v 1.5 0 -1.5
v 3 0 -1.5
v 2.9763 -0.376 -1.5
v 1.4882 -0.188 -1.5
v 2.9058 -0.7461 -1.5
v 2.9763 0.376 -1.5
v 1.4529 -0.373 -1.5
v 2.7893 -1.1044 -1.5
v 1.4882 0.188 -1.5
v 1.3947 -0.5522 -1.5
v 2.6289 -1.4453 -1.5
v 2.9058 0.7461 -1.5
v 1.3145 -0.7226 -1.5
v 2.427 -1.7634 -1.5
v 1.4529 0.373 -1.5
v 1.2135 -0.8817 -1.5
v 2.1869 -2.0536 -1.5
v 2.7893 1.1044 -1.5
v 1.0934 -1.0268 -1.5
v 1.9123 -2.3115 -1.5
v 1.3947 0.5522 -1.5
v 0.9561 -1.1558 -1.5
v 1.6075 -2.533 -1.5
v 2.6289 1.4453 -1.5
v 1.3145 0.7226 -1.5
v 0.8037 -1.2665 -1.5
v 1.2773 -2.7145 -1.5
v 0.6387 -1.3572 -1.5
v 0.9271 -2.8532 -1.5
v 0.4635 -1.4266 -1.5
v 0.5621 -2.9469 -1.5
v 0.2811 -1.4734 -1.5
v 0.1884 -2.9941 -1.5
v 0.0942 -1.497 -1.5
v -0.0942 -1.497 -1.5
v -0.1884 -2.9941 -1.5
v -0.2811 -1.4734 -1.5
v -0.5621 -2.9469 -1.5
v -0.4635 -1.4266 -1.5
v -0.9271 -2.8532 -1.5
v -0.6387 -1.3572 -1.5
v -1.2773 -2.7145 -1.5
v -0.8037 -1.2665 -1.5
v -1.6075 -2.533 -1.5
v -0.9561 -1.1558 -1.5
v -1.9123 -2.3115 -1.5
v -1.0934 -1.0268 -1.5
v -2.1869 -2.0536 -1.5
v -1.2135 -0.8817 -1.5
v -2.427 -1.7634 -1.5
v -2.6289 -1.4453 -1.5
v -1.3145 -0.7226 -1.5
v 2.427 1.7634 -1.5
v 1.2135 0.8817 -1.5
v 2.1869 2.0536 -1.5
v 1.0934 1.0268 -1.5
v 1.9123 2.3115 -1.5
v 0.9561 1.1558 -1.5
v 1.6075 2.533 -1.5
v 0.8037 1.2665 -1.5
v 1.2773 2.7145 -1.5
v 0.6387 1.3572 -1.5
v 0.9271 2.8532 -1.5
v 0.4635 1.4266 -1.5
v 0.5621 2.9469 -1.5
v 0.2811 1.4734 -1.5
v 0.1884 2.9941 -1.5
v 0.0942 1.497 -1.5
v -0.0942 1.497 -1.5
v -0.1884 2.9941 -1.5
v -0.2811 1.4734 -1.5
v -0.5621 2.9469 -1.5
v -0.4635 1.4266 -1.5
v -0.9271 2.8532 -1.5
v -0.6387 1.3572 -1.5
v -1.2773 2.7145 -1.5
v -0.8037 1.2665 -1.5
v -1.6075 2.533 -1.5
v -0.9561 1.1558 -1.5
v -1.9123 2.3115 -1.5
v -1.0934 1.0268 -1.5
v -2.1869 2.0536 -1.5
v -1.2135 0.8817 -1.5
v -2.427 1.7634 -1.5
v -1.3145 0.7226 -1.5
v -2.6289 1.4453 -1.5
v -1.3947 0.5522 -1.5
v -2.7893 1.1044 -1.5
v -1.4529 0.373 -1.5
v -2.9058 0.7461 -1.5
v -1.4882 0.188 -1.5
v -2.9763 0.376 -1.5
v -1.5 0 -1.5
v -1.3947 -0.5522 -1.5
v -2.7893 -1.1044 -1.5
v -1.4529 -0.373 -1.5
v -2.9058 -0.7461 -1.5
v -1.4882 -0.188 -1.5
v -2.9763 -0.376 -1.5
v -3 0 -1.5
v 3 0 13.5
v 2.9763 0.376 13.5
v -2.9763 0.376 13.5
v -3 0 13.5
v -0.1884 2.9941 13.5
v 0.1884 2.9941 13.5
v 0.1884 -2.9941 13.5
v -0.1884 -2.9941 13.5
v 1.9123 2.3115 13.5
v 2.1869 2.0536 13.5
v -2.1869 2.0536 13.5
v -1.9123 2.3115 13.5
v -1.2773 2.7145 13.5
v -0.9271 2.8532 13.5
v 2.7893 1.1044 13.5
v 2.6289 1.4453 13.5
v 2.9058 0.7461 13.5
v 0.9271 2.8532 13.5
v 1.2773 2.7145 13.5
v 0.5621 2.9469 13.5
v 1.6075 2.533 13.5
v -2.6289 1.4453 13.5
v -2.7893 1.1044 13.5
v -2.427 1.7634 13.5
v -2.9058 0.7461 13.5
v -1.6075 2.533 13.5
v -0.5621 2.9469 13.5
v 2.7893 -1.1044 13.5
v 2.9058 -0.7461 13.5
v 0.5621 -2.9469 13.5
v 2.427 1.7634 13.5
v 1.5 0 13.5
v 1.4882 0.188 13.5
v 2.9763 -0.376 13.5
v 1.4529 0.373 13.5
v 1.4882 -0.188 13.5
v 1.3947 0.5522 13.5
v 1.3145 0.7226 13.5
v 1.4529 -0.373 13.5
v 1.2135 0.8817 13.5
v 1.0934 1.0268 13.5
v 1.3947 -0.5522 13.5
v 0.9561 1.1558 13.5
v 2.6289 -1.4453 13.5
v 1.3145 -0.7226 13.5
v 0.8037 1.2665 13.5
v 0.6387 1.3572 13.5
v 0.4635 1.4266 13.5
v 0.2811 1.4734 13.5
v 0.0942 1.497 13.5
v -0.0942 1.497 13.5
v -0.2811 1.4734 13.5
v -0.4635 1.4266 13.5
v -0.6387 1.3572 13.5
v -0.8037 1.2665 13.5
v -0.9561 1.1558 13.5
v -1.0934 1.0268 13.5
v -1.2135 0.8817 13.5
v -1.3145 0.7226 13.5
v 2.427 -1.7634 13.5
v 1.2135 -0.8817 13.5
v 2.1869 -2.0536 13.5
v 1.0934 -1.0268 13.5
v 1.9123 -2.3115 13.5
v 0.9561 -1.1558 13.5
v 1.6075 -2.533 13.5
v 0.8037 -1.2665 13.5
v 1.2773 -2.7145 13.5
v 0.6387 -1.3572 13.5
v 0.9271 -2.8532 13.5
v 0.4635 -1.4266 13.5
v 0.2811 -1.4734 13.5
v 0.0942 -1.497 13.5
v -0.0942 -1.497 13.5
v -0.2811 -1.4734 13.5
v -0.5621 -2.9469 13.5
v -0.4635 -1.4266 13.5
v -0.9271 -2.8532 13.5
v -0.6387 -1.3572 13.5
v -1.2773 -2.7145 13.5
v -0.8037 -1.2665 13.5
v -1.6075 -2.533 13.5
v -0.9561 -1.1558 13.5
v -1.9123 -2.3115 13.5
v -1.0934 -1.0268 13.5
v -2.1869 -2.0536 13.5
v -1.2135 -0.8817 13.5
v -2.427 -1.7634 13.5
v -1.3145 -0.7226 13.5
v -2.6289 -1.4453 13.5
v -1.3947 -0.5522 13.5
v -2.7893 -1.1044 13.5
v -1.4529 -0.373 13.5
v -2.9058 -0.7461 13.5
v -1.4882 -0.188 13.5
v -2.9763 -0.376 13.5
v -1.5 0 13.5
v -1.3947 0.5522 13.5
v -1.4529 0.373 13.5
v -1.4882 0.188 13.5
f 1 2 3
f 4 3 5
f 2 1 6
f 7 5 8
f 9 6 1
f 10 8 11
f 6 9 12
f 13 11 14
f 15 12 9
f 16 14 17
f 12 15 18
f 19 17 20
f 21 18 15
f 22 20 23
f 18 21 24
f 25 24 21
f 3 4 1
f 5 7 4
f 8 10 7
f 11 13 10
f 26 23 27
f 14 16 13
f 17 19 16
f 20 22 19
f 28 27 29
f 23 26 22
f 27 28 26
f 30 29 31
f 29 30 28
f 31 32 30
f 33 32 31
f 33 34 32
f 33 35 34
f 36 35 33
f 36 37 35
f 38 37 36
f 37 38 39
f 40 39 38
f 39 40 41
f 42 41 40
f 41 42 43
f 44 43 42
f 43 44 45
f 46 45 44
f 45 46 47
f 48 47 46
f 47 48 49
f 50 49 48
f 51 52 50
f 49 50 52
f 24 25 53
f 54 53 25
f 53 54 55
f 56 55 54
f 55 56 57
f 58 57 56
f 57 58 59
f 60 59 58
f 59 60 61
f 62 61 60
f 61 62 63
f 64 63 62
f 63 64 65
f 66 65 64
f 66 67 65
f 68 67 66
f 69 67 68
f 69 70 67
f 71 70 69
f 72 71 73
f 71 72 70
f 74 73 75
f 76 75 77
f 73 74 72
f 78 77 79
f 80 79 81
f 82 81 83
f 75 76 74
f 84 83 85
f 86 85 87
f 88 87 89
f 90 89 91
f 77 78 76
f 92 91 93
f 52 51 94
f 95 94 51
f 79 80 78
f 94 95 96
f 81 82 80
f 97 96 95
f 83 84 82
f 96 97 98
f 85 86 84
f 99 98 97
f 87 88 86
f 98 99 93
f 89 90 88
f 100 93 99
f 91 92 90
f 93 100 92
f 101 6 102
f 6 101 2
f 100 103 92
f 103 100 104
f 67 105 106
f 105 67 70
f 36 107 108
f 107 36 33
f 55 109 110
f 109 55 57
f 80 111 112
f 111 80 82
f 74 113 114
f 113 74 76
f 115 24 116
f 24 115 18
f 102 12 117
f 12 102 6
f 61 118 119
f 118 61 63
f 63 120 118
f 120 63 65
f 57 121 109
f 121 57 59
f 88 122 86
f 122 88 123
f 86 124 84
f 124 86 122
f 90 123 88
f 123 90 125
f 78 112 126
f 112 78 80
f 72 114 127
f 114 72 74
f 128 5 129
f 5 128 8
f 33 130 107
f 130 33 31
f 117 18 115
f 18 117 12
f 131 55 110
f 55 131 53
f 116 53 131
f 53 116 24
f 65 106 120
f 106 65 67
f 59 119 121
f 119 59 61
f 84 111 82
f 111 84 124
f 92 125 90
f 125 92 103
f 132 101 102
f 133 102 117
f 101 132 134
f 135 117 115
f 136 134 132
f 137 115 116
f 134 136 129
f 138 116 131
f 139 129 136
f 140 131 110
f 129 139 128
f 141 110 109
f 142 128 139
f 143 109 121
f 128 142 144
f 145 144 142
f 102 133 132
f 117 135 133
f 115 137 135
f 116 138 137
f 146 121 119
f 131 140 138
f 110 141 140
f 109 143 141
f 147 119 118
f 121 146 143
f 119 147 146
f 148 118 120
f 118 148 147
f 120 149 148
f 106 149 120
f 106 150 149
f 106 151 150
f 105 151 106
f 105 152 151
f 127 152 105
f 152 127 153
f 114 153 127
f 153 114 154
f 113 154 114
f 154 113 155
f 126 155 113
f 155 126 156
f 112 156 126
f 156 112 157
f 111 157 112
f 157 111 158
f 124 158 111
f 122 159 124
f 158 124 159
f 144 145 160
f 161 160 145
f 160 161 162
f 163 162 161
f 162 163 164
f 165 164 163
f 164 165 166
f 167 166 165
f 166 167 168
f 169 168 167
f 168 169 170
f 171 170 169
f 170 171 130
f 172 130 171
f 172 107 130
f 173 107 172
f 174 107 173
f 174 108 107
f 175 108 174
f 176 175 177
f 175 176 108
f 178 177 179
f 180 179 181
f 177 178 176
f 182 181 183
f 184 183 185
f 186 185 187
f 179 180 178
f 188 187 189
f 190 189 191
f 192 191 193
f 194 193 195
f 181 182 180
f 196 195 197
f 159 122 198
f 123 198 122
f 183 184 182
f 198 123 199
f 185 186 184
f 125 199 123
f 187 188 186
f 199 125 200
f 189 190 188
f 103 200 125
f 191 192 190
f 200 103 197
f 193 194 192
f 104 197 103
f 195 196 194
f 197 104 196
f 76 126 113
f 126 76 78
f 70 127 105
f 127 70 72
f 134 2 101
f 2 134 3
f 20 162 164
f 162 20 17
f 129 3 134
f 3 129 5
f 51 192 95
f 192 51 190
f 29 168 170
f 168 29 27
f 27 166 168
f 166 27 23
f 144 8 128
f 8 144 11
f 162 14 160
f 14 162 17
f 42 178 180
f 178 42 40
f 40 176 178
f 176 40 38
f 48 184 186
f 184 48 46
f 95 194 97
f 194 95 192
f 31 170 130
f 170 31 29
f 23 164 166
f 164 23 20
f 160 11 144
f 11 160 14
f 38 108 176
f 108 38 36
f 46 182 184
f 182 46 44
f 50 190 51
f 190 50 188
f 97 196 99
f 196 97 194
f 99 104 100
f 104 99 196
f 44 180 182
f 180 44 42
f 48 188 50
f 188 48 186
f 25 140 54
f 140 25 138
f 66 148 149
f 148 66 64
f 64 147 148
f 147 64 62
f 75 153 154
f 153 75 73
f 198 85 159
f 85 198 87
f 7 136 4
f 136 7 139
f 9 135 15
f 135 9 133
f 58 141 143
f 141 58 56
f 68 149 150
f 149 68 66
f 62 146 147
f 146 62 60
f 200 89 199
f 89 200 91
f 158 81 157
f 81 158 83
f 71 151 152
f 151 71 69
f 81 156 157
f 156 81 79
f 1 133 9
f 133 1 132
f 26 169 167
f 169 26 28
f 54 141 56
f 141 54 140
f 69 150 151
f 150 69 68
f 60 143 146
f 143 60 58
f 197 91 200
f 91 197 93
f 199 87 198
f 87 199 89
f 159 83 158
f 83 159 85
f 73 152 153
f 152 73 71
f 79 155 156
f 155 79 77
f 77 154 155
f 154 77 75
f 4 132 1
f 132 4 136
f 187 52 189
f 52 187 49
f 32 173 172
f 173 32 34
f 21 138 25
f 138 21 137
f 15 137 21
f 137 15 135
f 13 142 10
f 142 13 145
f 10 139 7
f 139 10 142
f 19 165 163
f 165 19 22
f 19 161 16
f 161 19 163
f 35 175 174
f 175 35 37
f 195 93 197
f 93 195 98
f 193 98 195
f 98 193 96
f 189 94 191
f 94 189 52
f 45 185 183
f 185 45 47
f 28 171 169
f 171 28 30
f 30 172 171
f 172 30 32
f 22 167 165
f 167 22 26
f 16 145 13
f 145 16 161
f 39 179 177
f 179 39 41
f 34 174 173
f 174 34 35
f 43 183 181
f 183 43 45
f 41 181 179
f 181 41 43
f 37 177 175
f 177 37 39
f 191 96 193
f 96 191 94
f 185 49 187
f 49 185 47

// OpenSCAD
$fn = 50;


difference() {
	union() {
		translate(v = [0, 0, -1.5000000000]) {
			rotate(a = [0, 0, 0]) {
				cylinder(h = 3, r = 1.0000000000);
			}
		}
		translate(v = [0, 0, -1.5000000000]) {
			rotate(a = [0, 0, 0]) {
				cylinder(h = 15, r = 3.0000000000);
			}
		}
	}
	union() {
		translate(v = [0, 0, -125.0000000000]) {
			rotate(a = [0, 0, 0]) {
				cylinder(h = 250, r = 1.5000000000);
			}
		}
	}
}
